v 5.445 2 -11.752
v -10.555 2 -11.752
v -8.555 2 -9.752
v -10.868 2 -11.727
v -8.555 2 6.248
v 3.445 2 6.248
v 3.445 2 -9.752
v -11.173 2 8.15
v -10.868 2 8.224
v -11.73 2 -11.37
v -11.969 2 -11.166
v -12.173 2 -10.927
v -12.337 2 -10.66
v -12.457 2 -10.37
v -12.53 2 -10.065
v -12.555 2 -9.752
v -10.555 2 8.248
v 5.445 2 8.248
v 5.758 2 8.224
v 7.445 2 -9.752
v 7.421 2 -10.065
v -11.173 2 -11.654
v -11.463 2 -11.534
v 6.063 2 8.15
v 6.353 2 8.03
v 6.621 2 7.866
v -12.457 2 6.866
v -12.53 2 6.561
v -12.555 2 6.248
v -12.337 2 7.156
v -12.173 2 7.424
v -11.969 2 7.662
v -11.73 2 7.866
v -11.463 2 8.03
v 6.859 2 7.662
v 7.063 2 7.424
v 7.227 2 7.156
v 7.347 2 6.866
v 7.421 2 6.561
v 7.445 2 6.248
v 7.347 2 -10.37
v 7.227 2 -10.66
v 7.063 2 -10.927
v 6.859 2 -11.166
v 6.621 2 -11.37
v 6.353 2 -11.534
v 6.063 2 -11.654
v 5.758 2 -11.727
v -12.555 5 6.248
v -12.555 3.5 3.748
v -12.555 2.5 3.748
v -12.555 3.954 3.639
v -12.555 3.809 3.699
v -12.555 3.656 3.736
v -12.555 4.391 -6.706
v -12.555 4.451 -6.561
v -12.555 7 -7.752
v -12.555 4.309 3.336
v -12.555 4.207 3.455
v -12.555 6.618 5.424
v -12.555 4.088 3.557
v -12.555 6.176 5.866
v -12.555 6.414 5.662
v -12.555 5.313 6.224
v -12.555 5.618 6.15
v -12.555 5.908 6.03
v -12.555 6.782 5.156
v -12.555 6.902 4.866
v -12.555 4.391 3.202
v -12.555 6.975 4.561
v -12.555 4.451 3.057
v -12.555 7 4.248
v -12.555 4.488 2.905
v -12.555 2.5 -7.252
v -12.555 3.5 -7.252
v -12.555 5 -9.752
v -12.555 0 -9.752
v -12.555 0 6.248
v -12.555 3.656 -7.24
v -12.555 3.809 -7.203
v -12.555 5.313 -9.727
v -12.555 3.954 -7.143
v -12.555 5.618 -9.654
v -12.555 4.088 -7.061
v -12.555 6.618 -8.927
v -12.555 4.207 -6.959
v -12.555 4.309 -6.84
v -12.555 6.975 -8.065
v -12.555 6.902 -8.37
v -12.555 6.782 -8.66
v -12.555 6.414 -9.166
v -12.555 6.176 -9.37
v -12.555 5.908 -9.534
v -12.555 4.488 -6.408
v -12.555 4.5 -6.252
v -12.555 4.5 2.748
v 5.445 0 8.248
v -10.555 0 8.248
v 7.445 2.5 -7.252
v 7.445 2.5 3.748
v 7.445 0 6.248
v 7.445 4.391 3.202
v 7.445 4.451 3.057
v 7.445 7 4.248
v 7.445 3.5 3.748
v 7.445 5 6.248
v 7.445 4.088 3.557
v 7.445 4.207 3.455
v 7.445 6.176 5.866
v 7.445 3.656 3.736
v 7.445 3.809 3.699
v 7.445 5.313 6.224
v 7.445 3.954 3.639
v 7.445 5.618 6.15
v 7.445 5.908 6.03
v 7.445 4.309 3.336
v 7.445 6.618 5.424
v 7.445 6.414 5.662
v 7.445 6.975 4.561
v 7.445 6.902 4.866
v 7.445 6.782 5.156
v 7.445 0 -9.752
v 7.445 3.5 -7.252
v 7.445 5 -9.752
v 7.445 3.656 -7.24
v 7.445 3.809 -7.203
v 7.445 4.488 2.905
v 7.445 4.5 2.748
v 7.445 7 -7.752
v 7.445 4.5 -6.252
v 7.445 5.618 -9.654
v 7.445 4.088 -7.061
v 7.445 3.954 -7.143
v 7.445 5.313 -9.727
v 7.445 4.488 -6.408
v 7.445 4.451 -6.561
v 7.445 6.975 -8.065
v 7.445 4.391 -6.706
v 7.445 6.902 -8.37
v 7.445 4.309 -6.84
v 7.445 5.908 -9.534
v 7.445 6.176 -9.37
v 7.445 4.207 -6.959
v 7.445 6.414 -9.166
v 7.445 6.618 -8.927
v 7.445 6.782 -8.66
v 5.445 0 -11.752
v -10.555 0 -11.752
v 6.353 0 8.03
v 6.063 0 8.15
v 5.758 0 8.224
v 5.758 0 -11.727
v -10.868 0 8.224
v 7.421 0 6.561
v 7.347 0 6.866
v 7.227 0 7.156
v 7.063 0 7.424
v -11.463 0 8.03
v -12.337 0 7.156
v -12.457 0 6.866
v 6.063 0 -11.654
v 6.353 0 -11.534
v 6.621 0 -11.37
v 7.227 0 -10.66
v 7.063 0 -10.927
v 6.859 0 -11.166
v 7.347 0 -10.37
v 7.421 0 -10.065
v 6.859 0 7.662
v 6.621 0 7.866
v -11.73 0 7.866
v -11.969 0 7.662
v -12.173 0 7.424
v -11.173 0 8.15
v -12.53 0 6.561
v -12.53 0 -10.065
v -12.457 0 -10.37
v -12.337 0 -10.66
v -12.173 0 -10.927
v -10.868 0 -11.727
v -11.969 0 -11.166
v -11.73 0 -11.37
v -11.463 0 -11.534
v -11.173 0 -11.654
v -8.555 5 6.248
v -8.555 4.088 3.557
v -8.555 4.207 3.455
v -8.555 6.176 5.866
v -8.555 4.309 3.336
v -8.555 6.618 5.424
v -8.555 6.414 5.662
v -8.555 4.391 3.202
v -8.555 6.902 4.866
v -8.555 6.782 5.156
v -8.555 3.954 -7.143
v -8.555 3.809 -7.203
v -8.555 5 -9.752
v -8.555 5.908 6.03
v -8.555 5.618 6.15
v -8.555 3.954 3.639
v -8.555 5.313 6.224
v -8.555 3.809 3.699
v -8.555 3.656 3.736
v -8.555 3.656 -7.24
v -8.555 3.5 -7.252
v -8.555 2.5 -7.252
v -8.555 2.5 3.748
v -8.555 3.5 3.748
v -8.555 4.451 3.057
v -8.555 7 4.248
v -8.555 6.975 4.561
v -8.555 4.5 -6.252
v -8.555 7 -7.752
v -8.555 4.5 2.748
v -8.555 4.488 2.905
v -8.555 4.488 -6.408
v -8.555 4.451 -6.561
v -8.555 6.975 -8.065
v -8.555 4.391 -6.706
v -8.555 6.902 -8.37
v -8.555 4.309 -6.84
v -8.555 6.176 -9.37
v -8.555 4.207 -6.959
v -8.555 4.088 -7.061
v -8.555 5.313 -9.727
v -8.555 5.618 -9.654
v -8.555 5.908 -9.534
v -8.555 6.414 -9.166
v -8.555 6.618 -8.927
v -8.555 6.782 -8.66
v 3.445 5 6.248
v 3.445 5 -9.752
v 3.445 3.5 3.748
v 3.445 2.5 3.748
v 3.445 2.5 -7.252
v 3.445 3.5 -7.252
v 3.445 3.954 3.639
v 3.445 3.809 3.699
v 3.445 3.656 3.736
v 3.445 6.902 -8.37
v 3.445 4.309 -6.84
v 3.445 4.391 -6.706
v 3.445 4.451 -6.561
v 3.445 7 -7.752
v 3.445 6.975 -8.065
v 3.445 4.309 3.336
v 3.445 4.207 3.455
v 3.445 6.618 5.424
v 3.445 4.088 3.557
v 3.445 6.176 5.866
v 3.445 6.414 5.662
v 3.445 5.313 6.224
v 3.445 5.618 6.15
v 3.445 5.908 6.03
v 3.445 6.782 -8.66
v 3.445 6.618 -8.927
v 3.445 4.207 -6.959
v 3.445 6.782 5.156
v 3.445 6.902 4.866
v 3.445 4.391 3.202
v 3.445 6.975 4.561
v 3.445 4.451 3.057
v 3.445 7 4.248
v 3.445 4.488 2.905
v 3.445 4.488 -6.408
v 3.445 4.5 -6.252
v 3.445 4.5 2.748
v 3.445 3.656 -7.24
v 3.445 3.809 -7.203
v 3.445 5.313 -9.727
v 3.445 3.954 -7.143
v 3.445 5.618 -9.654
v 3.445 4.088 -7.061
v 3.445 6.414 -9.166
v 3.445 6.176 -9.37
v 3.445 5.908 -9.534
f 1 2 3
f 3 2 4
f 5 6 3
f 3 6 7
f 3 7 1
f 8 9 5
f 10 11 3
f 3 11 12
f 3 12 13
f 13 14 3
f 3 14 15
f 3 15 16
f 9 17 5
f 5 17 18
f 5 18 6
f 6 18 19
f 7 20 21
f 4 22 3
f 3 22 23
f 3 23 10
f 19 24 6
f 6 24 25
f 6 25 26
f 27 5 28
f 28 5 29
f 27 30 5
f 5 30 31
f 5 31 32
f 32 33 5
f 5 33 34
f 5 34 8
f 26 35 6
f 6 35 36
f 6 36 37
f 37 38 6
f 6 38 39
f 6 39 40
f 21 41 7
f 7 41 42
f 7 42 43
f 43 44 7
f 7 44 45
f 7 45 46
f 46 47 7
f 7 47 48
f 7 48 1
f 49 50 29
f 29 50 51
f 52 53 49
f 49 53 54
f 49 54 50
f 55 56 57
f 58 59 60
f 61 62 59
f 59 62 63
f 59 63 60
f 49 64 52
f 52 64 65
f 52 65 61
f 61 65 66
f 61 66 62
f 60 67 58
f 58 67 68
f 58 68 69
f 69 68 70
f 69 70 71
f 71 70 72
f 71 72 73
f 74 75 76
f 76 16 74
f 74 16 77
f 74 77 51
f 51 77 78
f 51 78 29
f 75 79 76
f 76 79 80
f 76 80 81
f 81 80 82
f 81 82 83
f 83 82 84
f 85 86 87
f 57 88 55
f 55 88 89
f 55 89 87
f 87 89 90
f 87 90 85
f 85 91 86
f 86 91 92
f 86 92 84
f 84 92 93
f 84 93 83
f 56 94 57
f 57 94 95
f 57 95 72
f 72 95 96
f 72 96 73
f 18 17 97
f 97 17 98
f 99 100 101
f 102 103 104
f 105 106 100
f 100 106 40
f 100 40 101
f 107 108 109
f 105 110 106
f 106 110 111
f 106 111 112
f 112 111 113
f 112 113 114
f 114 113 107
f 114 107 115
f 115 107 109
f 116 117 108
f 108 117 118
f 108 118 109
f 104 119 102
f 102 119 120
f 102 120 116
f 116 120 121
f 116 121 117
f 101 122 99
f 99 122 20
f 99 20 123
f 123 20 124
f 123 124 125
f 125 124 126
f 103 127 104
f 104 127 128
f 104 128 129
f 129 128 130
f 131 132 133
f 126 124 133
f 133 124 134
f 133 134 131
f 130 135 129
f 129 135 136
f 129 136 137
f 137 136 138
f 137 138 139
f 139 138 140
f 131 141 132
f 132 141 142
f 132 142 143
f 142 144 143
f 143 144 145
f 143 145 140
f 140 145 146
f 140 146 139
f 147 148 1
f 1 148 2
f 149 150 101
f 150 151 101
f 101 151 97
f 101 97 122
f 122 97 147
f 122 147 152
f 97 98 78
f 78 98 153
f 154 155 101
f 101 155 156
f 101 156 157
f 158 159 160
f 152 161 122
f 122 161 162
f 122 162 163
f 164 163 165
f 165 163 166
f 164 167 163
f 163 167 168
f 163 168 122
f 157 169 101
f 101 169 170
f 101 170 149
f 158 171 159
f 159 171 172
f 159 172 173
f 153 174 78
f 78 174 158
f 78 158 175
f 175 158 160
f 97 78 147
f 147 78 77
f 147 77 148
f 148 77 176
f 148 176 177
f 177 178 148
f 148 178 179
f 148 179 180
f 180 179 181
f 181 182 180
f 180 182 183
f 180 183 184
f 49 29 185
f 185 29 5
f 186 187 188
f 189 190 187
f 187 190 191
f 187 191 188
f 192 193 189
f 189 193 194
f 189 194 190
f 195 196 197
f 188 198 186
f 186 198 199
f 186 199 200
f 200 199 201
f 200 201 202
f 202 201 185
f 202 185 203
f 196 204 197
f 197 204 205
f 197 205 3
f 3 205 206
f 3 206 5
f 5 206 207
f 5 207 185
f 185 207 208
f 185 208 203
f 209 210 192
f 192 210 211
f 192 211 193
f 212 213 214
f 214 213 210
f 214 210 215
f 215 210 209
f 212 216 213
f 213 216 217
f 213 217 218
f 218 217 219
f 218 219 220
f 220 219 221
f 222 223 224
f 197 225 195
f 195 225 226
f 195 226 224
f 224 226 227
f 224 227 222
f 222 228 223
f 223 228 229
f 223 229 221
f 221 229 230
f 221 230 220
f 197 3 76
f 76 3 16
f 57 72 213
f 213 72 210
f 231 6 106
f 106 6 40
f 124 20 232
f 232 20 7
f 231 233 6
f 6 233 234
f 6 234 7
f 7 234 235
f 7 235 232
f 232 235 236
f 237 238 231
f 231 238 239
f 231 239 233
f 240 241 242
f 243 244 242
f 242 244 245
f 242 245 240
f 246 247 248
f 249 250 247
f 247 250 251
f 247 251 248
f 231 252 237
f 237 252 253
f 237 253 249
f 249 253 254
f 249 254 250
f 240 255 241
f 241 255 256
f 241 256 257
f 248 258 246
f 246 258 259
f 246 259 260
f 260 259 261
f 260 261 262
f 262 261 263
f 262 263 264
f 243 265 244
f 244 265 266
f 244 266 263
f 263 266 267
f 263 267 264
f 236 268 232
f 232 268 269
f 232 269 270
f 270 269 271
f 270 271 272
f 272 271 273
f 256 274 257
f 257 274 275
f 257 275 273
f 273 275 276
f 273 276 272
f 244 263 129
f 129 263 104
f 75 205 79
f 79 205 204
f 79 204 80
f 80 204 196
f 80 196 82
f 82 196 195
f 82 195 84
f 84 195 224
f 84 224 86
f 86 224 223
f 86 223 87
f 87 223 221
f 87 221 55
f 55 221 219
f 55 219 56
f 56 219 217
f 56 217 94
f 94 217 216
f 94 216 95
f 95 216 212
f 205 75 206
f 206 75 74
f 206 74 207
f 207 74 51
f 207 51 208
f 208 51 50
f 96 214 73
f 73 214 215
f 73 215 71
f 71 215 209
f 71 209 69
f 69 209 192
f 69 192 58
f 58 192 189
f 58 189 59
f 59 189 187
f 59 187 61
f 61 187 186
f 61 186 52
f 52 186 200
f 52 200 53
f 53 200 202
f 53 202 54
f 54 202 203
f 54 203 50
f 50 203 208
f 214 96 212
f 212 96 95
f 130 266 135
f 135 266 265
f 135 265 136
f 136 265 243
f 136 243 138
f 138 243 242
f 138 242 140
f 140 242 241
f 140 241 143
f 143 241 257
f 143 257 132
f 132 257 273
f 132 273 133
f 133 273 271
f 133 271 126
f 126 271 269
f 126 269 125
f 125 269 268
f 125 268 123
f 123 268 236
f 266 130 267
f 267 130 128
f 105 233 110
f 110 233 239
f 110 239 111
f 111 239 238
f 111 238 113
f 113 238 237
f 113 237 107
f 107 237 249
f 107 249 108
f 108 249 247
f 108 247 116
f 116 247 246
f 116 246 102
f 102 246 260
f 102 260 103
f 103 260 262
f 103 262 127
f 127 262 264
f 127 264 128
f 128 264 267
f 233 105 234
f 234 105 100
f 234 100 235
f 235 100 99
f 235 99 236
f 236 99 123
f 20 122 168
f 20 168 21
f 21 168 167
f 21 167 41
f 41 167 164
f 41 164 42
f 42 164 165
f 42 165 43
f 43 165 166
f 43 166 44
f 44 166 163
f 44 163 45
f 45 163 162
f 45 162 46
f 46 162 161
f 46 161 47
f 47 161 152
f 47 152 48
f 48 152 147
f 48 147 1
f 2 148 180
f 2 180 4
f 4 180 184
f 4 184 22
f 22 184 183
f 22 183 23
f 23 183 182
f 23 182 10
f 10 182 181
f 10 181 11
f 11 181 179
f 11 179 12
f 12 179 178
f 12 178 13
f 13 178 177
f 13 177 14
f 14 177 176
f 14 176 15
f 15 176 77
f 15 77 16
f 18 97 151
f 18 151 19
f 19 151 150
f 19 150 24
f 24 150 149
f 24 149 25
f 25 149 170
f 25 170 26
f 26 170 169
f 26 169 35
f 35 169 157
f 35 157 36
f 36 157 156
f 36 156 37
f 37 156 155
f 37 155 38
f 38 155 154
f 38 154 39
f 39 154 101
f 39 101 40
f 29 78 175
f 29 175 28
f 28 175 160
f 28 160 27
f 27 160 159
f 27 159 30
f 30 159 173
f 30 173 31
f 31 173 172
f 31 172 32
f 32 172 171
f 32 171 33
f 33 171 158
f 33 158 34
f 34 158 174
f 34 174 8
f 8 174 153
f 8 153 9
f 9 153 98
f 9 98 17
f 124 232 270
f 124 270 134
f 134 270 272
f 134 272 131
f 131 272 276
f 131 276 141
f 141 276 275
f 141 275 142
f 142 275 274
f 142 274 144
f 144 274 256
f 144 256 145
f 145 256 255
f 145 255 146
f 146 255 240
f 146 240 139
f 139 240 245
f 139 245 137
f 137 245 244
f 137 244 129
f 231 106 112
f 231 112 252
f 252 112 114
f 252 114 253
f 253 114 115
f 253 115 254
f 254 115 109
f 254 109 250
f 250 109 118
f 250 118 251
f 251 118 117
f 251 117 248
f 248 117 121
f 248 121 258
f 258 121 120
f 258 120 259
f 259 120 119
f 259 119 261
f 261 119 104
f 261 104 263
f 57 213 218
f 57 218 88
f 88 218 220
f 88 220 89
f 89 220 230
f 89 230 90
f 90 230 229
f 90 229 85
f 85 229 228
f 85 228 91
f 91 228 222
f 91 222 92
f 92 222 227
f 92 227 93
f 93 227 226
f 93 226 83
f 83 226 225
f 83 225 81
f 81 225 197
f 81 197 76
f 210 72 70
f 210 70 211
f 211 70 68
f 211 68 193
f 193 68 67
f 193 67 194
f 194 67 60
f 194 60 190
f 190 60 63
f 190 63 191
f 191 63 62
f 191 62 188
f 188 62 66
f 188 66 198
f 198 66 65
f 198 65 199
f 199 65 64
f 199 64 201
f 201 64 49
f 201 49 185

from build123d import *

# Parameters (mm, degrees)
CROQUIS1_W              = 20
CROQUIS1_H              = 20
SALIENTE_EXTRUIR1_DEPTH = 2
CROQUIS2_W              = 4
CROQUIS2_H              = 16
SALIENTE_EXTRUIR2_DEPTH = 5
CORTAR_EXTRUIR2_DEPTH   = 5
CORTAR_EXTRUIR3_START   = -5
CORTAR_EXTRUIR3_DEPTH   = 5
REDONDEO1_R             = 2
REDONDEO2_R             = 2


with BuildPart() as part:
    # Croquis1 → Saliente-Extruir1 (new body)
    with BuildSketch(Plane(origin=(0, 0, 0), x_dir=(1, 0, 0), z_dir=(0, 1, 0))):
        with Locations((-2.554744526, 1.751824818)):
            Rectangle(CROQUIS1_W, CROQUIS1_H)
    extrude(amount=SALIENTE_EXTRUIR1_DEPTH)

    # Croquis2 → Saliente-Extruir2 (add)
    with BuildSketch(Plane(origin=(0, 2, 0), x_dir=(1, 0, 0), z_dir=(0, 1, 0))):
        with Locations((-10.554744526, 1.751824818)):
            Rectangle(CROQUIS2_W, CROQUIS2_H)
        with Locations((5.445255474, 1.751824818)):
            Rectangle(CROQUIS2_W, CROQUIS2_H)
    extrude(amount=SALIENTE_EXTRUIR2_DEPTH)

    # Croquis3 → Cortar-Extruir2 (cut)
    with BuildSketch(Plane(origin=(-8.554744526, 0, 0), x_dir=(0, 0, -1), z_dir=(1, 0, 0))):
        with BuildLine():
            Line((6.251824818, 4.5), (-2.748175182, 4.5))
            ThreePointArc((-2.748175182, 4.5), (-3.455281964, 4.207106781), (-3.748175182, 3.5))
            Line((-3.748175182, 3.5), (-3.748175182, 2.5))
            Line((-3.748175182, 2.5), (7.251824818, 2.5))
            Line((7.251824818, 2.5), (7.251824818, 3.5))
            ThreePointArc((7.251824818, 3.5), (6.958931599, 4.207106781), (6.251824818, 4.5))
        make_face()
    extrude(amount=-CORTAR_EXTRUIR2_DEPTH, mode=Mode.SUBTRACT)

    # Croquis4 → Cortar-Extruir3 (cut)
    with BuildSketch(Plane.ZY.offset(-3.445255474).offset(CORTAR_EXTRUIR3_START)):
        with BuildLine():
            Line((2.748175182, 4.5), (-6.251824818, 4.5))
            ThreePointArc((-6.251824818, 4.5), (-6.958931599, 4.207106781), (-7.251824818, 3.5))
            Line((-7.251824818, 3.5), (-7.251824818, 2.5))
            Line((-7.251824818, 2.5), (3.748175182, 2.5))
            Line((3.748175182, 2.5), (3.748175182, 3.5))
            ThreePointArc((3.748175182, 3.5), (3.455281964, 4.207106781), (2.748175182, 4.5))
        make_face()
    extrude(amount=CORTAR_EXTRUIR3_DEPTH, mode=Mode.SUBTRACT)

    # Redondeo1
    redondeo1_edges = [part.edges().sort_by_distance(p)[0] for p in [
        (7.445255474, 1, -11.751824818),
        (-12.554744526, 1, -11.751824818),
        (7.445255474, 1, 8.248175182),
        (-12.554744526, 1, 8.248175182),
    ]]
    fillet(redondeo1_edges, radius=REDONDEO1_R)

    # Redondeo2
    redondeo2_edges = [part.edges().sort_by_distance(p)[0] for p in [
        (5.445255474, 7, -9.751824818),
        (5.445255474, 7, 6.248175182),
        (-10.554744526, 7, -9.751824818),
        (-10.554744526, 7, 6.248175182),
    ]]
    fillet(redondeo2_edges, radius=REDONDEO2_R)


solid = part.part
